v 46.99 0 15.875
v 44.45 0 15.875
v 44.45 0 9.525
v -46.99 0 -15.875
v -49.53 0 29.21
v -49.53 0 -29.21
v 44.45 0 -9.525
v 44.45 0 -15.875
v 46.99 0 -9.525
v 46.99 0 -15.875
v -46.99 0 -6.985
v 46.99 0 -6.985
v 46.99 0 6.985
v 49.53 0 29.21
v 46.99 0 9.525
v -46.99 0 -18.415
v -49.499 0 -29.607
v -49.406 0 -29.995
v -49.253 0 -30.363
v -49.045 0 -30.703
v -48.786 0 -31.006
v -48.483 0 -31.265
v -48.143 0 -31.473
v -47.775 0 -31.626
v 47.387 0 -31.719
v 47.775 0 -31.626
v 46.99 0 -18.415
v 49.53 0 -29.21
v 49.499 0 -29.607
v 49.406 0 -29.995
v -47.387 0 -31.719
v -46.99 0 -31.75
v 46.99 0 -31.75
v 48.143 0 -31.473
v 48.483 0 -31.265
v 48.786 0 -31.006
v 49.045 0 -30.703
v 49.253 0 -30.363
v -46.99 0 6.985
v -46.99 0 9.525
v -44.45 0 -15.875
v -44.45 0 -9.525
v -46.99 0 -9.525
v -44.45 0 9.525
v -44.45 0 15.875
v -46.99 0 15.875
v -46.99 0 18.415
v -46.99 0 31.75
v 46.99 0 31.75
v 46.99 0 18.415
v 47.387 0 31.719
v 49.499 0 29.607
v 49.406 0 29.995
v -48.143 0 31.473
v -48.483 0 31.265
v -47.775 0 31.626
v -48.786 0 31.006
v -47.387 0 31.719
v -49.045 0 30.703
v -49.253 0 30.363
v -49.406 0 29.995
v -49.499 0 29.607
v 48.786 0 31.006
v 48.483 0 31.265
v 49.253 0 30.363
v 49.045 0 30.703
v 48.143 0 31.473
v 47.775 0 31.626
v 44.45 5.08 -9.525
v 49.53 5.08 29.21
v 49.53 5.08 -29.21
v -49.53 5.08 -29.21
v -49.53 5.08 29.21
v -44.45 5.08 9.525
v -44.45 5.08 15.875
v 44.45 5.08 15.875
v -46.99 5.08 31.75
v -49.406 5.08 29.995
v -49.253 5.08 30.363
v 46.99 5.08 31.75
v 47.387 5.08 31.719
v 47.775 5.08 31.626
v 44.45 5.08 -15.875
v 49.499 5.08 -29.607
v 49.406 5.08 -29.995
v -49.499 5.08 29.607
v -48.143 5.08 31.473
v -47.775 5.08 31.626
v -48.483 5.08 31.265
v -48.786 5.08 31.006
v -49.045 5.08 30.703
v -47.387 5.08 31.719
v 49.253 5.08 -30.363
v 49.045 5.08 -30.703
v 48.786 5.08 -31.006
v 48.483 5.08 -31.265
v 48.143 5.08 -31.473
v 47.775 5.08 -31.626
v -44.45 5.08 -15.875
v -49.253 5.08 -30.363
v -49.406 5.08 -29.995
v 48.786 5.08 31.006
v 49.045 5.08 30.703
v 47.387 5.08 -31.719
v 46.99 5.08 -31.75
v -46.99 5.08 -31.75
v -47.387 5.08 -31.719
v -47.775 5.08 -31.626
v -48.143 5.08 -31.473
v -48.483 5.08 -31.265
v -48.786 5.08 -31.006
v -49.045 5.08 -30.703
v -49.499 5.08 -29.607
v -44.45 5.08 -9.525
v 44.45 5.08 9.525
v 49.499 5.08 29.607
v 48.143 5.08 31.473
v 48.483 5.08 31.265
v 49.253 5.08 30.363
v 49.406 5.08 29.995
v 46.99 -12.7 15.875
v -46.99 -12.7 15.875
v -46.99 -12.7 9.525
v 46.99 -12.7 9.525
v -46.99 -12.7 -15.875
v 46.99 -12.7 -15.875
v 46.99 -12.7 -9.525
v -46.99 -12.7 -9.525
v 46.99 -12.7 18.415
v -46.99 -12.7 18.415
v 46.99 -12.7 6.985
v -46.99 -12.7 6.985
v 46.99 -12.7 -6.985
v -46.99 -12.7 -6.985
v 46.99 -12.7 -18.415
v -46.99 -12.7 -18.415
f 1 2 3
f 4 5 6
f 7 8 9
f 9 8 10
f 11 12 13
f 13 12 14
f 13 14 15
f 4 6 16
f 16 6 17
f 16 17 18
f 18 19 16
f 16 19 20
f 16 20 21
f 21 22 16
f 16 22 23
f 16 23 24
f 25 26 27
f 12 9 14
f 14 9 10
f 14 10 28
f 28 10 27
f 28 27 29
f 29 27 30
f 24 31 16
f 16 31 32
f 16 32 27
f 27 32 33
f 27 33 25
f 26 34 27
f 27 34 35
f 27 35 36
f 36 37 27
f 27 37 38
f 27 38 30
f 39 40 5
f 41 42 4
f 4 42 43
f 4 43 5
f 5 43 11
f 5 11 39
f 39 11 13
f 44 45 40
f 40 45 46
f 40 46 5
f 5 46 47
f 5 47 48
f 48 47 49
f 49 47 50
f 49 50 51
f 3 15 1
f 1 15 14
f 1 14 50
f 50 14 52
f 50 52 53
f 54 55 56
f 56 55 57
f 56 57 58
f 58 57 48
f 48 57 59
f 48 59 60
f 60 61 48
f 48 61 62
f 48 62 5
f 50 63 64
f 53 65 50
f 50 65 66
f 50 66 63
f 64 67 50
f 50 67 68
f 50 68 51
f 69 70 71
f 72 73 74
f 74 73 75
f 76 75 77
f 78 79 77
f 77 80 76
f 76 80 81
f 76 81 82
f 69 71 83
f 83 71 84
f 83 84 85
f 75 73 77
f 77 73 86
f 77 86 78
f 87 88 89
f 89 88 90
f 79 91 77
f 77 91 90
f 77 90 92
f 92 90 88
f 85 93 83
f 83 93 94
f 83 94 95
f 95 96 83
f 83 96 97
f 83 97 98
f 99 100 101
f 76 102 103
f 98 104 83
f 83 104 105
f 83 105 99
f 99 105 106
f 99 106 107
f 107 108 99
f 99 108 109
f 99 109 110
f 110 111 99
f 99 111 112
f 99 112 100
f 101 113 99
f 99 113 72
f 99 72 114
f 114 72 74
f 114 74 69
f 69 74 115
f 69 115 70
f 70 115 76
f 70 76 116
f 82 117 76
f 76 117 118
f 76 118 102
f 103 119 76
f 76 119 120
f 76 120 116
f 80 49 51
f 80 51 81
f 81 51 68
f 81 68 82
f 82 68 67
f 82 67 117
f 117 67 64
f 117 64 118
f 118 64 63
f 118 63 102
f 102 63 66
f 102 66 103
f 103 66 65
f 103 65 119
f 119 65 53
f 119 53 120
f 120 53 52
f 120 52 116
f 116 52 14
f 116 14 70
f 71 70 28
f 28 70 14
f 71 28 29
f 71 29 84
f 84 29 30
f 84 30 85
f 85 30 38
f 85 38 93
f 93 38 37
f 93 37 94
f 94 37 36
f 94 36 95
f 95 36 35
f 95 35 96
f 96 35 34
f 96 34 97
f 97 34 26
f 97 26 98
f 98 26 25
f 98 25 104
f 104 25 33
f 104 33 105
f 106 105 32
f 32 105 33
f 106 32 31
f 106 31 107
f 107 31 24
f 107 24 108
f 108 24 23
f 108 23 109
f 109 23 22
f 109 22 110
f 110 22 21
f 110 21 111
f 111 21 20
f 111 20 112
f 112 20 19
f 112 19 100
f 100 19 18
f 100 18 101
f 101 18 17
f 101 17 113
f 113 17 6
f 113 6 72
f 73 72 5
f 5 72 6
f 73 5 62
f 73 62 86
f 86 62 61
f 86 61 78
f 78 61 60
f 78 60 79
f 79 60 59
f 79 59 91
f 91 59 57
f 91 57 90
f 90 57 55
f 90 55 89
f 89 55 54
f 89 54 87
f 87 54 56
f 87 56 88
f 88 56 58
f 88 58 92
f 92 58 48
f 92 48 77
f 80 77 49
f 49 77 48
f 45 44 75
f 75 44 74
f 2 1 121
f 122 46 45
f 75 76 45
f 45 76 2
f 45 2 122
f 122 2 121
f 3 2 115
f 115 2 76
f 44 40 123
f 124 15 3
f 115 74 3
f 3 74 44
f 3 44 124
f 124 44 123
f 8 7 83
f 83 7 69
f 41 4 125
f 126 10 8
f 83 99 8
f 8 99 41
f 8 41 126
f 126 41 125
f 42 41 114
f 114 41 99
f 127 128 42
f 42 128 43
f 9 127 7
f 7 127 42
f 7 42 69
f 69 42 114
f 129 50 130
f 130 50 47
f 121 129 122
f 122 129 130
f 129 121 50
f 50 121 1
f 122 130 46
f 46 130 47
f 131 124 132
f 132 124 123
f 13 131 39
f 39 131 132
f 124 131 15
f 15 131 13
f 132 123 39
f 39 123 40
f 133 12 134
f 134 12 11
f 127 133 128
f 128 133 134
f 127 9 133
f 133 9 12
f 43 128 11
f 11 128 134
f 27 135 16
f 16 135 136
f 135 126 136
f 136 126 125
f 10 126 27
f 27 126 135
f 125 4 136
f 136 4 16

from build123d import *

# Parameters (mm, degrees)
BOSS_EXTRUDE1_DEPTH = 5.08
SKETCH4_W           = 88.9
SKETCH4_H           = 6.35
CUT_EXTRUDE2_DEPTH  = 5.08
SKETCH6_W           = 2.54
SKETCH6_H           = 12.7
BOSS_EXTRUDE2_DEPTH = 46.99


with BuildPart() as part:
    # Sketch2 → Boss-Extrude1 (new body)
    with BuildSketch(Plane(origin=(0, 0, 0), x_dir=(1, 0, 0), z_dir=(0, 1, 0))):
        with BuildLine():
            Line((-46.99, 31.75), (46.99, 31.75))
            ThreePointArc((46.99, 31.75), (48.786051224, 31.006051224), (49.53, 29.21))
            Line((49.53, 29.21), (49.53, -29.21))
            ThreePointArc((49.53, -29.21), (48.786051224, -31.006051224), (46.99, -31.75))
            Line((46.99, -31.75), (-46.99, -31.75))
            ThreePointArc((-46.99, -31.75), (-48.786051224, -31.006051224), (-49.53, -29.21))
            Line((-49.53, -29.21), (-49.53, 29.21))
            ThreePointArc((-49.53, 29.21), (-48.786051224, 31.006051224), (-46.99, 31.75))
        make_face()
    extrude(amount=BOSS_EXTRUDE1_DEPTH)

    # Sketch4 → Cut-Extrude2 (cut)
    with BuildSketch(Plane(origin=(0, 0, 0), x_dir=(1, 0, 0), z_dir=(0, 1, 0))):
        with Locations((0, 12.7)):
            Rectangle(SKETCH4_W, SKETCH4_H)
        with Locations((0, -12.7)):
            Rectangle(SKETCH4_W, SKETCH4_H)
    extrude(amount=CUT_EXTRUDE2_DEPTH, mode=Mode.SUBTRACT)

    # Sketch6 → Boss-Extrude2 (add, symmetric)
    with BuildSketch(Plane(origin=(0, 0, 0), x_dir=(0, 0, -1), z_dir=(1, 0, 0))):
        with Locations((-17.145, -6.35)):
            Rectangle(SKETCH6_W, SKETCH6_H)
        with Locations((-8.255, -6.35)):
            Rectangle(SKETCH6_W, SKETCH6_H)
        with Locations((8.255, -6.35)):
            Rectangle(SKETCH6_W, SKETCH6_H)
        with Locations((17.145, -6.35)):
            Rectangle(SKETCH6_W, SKETCH6_H)
    extrude(amount=BOSS_EXTRUDE2_DEPTH, both=True)


solid = part.part
